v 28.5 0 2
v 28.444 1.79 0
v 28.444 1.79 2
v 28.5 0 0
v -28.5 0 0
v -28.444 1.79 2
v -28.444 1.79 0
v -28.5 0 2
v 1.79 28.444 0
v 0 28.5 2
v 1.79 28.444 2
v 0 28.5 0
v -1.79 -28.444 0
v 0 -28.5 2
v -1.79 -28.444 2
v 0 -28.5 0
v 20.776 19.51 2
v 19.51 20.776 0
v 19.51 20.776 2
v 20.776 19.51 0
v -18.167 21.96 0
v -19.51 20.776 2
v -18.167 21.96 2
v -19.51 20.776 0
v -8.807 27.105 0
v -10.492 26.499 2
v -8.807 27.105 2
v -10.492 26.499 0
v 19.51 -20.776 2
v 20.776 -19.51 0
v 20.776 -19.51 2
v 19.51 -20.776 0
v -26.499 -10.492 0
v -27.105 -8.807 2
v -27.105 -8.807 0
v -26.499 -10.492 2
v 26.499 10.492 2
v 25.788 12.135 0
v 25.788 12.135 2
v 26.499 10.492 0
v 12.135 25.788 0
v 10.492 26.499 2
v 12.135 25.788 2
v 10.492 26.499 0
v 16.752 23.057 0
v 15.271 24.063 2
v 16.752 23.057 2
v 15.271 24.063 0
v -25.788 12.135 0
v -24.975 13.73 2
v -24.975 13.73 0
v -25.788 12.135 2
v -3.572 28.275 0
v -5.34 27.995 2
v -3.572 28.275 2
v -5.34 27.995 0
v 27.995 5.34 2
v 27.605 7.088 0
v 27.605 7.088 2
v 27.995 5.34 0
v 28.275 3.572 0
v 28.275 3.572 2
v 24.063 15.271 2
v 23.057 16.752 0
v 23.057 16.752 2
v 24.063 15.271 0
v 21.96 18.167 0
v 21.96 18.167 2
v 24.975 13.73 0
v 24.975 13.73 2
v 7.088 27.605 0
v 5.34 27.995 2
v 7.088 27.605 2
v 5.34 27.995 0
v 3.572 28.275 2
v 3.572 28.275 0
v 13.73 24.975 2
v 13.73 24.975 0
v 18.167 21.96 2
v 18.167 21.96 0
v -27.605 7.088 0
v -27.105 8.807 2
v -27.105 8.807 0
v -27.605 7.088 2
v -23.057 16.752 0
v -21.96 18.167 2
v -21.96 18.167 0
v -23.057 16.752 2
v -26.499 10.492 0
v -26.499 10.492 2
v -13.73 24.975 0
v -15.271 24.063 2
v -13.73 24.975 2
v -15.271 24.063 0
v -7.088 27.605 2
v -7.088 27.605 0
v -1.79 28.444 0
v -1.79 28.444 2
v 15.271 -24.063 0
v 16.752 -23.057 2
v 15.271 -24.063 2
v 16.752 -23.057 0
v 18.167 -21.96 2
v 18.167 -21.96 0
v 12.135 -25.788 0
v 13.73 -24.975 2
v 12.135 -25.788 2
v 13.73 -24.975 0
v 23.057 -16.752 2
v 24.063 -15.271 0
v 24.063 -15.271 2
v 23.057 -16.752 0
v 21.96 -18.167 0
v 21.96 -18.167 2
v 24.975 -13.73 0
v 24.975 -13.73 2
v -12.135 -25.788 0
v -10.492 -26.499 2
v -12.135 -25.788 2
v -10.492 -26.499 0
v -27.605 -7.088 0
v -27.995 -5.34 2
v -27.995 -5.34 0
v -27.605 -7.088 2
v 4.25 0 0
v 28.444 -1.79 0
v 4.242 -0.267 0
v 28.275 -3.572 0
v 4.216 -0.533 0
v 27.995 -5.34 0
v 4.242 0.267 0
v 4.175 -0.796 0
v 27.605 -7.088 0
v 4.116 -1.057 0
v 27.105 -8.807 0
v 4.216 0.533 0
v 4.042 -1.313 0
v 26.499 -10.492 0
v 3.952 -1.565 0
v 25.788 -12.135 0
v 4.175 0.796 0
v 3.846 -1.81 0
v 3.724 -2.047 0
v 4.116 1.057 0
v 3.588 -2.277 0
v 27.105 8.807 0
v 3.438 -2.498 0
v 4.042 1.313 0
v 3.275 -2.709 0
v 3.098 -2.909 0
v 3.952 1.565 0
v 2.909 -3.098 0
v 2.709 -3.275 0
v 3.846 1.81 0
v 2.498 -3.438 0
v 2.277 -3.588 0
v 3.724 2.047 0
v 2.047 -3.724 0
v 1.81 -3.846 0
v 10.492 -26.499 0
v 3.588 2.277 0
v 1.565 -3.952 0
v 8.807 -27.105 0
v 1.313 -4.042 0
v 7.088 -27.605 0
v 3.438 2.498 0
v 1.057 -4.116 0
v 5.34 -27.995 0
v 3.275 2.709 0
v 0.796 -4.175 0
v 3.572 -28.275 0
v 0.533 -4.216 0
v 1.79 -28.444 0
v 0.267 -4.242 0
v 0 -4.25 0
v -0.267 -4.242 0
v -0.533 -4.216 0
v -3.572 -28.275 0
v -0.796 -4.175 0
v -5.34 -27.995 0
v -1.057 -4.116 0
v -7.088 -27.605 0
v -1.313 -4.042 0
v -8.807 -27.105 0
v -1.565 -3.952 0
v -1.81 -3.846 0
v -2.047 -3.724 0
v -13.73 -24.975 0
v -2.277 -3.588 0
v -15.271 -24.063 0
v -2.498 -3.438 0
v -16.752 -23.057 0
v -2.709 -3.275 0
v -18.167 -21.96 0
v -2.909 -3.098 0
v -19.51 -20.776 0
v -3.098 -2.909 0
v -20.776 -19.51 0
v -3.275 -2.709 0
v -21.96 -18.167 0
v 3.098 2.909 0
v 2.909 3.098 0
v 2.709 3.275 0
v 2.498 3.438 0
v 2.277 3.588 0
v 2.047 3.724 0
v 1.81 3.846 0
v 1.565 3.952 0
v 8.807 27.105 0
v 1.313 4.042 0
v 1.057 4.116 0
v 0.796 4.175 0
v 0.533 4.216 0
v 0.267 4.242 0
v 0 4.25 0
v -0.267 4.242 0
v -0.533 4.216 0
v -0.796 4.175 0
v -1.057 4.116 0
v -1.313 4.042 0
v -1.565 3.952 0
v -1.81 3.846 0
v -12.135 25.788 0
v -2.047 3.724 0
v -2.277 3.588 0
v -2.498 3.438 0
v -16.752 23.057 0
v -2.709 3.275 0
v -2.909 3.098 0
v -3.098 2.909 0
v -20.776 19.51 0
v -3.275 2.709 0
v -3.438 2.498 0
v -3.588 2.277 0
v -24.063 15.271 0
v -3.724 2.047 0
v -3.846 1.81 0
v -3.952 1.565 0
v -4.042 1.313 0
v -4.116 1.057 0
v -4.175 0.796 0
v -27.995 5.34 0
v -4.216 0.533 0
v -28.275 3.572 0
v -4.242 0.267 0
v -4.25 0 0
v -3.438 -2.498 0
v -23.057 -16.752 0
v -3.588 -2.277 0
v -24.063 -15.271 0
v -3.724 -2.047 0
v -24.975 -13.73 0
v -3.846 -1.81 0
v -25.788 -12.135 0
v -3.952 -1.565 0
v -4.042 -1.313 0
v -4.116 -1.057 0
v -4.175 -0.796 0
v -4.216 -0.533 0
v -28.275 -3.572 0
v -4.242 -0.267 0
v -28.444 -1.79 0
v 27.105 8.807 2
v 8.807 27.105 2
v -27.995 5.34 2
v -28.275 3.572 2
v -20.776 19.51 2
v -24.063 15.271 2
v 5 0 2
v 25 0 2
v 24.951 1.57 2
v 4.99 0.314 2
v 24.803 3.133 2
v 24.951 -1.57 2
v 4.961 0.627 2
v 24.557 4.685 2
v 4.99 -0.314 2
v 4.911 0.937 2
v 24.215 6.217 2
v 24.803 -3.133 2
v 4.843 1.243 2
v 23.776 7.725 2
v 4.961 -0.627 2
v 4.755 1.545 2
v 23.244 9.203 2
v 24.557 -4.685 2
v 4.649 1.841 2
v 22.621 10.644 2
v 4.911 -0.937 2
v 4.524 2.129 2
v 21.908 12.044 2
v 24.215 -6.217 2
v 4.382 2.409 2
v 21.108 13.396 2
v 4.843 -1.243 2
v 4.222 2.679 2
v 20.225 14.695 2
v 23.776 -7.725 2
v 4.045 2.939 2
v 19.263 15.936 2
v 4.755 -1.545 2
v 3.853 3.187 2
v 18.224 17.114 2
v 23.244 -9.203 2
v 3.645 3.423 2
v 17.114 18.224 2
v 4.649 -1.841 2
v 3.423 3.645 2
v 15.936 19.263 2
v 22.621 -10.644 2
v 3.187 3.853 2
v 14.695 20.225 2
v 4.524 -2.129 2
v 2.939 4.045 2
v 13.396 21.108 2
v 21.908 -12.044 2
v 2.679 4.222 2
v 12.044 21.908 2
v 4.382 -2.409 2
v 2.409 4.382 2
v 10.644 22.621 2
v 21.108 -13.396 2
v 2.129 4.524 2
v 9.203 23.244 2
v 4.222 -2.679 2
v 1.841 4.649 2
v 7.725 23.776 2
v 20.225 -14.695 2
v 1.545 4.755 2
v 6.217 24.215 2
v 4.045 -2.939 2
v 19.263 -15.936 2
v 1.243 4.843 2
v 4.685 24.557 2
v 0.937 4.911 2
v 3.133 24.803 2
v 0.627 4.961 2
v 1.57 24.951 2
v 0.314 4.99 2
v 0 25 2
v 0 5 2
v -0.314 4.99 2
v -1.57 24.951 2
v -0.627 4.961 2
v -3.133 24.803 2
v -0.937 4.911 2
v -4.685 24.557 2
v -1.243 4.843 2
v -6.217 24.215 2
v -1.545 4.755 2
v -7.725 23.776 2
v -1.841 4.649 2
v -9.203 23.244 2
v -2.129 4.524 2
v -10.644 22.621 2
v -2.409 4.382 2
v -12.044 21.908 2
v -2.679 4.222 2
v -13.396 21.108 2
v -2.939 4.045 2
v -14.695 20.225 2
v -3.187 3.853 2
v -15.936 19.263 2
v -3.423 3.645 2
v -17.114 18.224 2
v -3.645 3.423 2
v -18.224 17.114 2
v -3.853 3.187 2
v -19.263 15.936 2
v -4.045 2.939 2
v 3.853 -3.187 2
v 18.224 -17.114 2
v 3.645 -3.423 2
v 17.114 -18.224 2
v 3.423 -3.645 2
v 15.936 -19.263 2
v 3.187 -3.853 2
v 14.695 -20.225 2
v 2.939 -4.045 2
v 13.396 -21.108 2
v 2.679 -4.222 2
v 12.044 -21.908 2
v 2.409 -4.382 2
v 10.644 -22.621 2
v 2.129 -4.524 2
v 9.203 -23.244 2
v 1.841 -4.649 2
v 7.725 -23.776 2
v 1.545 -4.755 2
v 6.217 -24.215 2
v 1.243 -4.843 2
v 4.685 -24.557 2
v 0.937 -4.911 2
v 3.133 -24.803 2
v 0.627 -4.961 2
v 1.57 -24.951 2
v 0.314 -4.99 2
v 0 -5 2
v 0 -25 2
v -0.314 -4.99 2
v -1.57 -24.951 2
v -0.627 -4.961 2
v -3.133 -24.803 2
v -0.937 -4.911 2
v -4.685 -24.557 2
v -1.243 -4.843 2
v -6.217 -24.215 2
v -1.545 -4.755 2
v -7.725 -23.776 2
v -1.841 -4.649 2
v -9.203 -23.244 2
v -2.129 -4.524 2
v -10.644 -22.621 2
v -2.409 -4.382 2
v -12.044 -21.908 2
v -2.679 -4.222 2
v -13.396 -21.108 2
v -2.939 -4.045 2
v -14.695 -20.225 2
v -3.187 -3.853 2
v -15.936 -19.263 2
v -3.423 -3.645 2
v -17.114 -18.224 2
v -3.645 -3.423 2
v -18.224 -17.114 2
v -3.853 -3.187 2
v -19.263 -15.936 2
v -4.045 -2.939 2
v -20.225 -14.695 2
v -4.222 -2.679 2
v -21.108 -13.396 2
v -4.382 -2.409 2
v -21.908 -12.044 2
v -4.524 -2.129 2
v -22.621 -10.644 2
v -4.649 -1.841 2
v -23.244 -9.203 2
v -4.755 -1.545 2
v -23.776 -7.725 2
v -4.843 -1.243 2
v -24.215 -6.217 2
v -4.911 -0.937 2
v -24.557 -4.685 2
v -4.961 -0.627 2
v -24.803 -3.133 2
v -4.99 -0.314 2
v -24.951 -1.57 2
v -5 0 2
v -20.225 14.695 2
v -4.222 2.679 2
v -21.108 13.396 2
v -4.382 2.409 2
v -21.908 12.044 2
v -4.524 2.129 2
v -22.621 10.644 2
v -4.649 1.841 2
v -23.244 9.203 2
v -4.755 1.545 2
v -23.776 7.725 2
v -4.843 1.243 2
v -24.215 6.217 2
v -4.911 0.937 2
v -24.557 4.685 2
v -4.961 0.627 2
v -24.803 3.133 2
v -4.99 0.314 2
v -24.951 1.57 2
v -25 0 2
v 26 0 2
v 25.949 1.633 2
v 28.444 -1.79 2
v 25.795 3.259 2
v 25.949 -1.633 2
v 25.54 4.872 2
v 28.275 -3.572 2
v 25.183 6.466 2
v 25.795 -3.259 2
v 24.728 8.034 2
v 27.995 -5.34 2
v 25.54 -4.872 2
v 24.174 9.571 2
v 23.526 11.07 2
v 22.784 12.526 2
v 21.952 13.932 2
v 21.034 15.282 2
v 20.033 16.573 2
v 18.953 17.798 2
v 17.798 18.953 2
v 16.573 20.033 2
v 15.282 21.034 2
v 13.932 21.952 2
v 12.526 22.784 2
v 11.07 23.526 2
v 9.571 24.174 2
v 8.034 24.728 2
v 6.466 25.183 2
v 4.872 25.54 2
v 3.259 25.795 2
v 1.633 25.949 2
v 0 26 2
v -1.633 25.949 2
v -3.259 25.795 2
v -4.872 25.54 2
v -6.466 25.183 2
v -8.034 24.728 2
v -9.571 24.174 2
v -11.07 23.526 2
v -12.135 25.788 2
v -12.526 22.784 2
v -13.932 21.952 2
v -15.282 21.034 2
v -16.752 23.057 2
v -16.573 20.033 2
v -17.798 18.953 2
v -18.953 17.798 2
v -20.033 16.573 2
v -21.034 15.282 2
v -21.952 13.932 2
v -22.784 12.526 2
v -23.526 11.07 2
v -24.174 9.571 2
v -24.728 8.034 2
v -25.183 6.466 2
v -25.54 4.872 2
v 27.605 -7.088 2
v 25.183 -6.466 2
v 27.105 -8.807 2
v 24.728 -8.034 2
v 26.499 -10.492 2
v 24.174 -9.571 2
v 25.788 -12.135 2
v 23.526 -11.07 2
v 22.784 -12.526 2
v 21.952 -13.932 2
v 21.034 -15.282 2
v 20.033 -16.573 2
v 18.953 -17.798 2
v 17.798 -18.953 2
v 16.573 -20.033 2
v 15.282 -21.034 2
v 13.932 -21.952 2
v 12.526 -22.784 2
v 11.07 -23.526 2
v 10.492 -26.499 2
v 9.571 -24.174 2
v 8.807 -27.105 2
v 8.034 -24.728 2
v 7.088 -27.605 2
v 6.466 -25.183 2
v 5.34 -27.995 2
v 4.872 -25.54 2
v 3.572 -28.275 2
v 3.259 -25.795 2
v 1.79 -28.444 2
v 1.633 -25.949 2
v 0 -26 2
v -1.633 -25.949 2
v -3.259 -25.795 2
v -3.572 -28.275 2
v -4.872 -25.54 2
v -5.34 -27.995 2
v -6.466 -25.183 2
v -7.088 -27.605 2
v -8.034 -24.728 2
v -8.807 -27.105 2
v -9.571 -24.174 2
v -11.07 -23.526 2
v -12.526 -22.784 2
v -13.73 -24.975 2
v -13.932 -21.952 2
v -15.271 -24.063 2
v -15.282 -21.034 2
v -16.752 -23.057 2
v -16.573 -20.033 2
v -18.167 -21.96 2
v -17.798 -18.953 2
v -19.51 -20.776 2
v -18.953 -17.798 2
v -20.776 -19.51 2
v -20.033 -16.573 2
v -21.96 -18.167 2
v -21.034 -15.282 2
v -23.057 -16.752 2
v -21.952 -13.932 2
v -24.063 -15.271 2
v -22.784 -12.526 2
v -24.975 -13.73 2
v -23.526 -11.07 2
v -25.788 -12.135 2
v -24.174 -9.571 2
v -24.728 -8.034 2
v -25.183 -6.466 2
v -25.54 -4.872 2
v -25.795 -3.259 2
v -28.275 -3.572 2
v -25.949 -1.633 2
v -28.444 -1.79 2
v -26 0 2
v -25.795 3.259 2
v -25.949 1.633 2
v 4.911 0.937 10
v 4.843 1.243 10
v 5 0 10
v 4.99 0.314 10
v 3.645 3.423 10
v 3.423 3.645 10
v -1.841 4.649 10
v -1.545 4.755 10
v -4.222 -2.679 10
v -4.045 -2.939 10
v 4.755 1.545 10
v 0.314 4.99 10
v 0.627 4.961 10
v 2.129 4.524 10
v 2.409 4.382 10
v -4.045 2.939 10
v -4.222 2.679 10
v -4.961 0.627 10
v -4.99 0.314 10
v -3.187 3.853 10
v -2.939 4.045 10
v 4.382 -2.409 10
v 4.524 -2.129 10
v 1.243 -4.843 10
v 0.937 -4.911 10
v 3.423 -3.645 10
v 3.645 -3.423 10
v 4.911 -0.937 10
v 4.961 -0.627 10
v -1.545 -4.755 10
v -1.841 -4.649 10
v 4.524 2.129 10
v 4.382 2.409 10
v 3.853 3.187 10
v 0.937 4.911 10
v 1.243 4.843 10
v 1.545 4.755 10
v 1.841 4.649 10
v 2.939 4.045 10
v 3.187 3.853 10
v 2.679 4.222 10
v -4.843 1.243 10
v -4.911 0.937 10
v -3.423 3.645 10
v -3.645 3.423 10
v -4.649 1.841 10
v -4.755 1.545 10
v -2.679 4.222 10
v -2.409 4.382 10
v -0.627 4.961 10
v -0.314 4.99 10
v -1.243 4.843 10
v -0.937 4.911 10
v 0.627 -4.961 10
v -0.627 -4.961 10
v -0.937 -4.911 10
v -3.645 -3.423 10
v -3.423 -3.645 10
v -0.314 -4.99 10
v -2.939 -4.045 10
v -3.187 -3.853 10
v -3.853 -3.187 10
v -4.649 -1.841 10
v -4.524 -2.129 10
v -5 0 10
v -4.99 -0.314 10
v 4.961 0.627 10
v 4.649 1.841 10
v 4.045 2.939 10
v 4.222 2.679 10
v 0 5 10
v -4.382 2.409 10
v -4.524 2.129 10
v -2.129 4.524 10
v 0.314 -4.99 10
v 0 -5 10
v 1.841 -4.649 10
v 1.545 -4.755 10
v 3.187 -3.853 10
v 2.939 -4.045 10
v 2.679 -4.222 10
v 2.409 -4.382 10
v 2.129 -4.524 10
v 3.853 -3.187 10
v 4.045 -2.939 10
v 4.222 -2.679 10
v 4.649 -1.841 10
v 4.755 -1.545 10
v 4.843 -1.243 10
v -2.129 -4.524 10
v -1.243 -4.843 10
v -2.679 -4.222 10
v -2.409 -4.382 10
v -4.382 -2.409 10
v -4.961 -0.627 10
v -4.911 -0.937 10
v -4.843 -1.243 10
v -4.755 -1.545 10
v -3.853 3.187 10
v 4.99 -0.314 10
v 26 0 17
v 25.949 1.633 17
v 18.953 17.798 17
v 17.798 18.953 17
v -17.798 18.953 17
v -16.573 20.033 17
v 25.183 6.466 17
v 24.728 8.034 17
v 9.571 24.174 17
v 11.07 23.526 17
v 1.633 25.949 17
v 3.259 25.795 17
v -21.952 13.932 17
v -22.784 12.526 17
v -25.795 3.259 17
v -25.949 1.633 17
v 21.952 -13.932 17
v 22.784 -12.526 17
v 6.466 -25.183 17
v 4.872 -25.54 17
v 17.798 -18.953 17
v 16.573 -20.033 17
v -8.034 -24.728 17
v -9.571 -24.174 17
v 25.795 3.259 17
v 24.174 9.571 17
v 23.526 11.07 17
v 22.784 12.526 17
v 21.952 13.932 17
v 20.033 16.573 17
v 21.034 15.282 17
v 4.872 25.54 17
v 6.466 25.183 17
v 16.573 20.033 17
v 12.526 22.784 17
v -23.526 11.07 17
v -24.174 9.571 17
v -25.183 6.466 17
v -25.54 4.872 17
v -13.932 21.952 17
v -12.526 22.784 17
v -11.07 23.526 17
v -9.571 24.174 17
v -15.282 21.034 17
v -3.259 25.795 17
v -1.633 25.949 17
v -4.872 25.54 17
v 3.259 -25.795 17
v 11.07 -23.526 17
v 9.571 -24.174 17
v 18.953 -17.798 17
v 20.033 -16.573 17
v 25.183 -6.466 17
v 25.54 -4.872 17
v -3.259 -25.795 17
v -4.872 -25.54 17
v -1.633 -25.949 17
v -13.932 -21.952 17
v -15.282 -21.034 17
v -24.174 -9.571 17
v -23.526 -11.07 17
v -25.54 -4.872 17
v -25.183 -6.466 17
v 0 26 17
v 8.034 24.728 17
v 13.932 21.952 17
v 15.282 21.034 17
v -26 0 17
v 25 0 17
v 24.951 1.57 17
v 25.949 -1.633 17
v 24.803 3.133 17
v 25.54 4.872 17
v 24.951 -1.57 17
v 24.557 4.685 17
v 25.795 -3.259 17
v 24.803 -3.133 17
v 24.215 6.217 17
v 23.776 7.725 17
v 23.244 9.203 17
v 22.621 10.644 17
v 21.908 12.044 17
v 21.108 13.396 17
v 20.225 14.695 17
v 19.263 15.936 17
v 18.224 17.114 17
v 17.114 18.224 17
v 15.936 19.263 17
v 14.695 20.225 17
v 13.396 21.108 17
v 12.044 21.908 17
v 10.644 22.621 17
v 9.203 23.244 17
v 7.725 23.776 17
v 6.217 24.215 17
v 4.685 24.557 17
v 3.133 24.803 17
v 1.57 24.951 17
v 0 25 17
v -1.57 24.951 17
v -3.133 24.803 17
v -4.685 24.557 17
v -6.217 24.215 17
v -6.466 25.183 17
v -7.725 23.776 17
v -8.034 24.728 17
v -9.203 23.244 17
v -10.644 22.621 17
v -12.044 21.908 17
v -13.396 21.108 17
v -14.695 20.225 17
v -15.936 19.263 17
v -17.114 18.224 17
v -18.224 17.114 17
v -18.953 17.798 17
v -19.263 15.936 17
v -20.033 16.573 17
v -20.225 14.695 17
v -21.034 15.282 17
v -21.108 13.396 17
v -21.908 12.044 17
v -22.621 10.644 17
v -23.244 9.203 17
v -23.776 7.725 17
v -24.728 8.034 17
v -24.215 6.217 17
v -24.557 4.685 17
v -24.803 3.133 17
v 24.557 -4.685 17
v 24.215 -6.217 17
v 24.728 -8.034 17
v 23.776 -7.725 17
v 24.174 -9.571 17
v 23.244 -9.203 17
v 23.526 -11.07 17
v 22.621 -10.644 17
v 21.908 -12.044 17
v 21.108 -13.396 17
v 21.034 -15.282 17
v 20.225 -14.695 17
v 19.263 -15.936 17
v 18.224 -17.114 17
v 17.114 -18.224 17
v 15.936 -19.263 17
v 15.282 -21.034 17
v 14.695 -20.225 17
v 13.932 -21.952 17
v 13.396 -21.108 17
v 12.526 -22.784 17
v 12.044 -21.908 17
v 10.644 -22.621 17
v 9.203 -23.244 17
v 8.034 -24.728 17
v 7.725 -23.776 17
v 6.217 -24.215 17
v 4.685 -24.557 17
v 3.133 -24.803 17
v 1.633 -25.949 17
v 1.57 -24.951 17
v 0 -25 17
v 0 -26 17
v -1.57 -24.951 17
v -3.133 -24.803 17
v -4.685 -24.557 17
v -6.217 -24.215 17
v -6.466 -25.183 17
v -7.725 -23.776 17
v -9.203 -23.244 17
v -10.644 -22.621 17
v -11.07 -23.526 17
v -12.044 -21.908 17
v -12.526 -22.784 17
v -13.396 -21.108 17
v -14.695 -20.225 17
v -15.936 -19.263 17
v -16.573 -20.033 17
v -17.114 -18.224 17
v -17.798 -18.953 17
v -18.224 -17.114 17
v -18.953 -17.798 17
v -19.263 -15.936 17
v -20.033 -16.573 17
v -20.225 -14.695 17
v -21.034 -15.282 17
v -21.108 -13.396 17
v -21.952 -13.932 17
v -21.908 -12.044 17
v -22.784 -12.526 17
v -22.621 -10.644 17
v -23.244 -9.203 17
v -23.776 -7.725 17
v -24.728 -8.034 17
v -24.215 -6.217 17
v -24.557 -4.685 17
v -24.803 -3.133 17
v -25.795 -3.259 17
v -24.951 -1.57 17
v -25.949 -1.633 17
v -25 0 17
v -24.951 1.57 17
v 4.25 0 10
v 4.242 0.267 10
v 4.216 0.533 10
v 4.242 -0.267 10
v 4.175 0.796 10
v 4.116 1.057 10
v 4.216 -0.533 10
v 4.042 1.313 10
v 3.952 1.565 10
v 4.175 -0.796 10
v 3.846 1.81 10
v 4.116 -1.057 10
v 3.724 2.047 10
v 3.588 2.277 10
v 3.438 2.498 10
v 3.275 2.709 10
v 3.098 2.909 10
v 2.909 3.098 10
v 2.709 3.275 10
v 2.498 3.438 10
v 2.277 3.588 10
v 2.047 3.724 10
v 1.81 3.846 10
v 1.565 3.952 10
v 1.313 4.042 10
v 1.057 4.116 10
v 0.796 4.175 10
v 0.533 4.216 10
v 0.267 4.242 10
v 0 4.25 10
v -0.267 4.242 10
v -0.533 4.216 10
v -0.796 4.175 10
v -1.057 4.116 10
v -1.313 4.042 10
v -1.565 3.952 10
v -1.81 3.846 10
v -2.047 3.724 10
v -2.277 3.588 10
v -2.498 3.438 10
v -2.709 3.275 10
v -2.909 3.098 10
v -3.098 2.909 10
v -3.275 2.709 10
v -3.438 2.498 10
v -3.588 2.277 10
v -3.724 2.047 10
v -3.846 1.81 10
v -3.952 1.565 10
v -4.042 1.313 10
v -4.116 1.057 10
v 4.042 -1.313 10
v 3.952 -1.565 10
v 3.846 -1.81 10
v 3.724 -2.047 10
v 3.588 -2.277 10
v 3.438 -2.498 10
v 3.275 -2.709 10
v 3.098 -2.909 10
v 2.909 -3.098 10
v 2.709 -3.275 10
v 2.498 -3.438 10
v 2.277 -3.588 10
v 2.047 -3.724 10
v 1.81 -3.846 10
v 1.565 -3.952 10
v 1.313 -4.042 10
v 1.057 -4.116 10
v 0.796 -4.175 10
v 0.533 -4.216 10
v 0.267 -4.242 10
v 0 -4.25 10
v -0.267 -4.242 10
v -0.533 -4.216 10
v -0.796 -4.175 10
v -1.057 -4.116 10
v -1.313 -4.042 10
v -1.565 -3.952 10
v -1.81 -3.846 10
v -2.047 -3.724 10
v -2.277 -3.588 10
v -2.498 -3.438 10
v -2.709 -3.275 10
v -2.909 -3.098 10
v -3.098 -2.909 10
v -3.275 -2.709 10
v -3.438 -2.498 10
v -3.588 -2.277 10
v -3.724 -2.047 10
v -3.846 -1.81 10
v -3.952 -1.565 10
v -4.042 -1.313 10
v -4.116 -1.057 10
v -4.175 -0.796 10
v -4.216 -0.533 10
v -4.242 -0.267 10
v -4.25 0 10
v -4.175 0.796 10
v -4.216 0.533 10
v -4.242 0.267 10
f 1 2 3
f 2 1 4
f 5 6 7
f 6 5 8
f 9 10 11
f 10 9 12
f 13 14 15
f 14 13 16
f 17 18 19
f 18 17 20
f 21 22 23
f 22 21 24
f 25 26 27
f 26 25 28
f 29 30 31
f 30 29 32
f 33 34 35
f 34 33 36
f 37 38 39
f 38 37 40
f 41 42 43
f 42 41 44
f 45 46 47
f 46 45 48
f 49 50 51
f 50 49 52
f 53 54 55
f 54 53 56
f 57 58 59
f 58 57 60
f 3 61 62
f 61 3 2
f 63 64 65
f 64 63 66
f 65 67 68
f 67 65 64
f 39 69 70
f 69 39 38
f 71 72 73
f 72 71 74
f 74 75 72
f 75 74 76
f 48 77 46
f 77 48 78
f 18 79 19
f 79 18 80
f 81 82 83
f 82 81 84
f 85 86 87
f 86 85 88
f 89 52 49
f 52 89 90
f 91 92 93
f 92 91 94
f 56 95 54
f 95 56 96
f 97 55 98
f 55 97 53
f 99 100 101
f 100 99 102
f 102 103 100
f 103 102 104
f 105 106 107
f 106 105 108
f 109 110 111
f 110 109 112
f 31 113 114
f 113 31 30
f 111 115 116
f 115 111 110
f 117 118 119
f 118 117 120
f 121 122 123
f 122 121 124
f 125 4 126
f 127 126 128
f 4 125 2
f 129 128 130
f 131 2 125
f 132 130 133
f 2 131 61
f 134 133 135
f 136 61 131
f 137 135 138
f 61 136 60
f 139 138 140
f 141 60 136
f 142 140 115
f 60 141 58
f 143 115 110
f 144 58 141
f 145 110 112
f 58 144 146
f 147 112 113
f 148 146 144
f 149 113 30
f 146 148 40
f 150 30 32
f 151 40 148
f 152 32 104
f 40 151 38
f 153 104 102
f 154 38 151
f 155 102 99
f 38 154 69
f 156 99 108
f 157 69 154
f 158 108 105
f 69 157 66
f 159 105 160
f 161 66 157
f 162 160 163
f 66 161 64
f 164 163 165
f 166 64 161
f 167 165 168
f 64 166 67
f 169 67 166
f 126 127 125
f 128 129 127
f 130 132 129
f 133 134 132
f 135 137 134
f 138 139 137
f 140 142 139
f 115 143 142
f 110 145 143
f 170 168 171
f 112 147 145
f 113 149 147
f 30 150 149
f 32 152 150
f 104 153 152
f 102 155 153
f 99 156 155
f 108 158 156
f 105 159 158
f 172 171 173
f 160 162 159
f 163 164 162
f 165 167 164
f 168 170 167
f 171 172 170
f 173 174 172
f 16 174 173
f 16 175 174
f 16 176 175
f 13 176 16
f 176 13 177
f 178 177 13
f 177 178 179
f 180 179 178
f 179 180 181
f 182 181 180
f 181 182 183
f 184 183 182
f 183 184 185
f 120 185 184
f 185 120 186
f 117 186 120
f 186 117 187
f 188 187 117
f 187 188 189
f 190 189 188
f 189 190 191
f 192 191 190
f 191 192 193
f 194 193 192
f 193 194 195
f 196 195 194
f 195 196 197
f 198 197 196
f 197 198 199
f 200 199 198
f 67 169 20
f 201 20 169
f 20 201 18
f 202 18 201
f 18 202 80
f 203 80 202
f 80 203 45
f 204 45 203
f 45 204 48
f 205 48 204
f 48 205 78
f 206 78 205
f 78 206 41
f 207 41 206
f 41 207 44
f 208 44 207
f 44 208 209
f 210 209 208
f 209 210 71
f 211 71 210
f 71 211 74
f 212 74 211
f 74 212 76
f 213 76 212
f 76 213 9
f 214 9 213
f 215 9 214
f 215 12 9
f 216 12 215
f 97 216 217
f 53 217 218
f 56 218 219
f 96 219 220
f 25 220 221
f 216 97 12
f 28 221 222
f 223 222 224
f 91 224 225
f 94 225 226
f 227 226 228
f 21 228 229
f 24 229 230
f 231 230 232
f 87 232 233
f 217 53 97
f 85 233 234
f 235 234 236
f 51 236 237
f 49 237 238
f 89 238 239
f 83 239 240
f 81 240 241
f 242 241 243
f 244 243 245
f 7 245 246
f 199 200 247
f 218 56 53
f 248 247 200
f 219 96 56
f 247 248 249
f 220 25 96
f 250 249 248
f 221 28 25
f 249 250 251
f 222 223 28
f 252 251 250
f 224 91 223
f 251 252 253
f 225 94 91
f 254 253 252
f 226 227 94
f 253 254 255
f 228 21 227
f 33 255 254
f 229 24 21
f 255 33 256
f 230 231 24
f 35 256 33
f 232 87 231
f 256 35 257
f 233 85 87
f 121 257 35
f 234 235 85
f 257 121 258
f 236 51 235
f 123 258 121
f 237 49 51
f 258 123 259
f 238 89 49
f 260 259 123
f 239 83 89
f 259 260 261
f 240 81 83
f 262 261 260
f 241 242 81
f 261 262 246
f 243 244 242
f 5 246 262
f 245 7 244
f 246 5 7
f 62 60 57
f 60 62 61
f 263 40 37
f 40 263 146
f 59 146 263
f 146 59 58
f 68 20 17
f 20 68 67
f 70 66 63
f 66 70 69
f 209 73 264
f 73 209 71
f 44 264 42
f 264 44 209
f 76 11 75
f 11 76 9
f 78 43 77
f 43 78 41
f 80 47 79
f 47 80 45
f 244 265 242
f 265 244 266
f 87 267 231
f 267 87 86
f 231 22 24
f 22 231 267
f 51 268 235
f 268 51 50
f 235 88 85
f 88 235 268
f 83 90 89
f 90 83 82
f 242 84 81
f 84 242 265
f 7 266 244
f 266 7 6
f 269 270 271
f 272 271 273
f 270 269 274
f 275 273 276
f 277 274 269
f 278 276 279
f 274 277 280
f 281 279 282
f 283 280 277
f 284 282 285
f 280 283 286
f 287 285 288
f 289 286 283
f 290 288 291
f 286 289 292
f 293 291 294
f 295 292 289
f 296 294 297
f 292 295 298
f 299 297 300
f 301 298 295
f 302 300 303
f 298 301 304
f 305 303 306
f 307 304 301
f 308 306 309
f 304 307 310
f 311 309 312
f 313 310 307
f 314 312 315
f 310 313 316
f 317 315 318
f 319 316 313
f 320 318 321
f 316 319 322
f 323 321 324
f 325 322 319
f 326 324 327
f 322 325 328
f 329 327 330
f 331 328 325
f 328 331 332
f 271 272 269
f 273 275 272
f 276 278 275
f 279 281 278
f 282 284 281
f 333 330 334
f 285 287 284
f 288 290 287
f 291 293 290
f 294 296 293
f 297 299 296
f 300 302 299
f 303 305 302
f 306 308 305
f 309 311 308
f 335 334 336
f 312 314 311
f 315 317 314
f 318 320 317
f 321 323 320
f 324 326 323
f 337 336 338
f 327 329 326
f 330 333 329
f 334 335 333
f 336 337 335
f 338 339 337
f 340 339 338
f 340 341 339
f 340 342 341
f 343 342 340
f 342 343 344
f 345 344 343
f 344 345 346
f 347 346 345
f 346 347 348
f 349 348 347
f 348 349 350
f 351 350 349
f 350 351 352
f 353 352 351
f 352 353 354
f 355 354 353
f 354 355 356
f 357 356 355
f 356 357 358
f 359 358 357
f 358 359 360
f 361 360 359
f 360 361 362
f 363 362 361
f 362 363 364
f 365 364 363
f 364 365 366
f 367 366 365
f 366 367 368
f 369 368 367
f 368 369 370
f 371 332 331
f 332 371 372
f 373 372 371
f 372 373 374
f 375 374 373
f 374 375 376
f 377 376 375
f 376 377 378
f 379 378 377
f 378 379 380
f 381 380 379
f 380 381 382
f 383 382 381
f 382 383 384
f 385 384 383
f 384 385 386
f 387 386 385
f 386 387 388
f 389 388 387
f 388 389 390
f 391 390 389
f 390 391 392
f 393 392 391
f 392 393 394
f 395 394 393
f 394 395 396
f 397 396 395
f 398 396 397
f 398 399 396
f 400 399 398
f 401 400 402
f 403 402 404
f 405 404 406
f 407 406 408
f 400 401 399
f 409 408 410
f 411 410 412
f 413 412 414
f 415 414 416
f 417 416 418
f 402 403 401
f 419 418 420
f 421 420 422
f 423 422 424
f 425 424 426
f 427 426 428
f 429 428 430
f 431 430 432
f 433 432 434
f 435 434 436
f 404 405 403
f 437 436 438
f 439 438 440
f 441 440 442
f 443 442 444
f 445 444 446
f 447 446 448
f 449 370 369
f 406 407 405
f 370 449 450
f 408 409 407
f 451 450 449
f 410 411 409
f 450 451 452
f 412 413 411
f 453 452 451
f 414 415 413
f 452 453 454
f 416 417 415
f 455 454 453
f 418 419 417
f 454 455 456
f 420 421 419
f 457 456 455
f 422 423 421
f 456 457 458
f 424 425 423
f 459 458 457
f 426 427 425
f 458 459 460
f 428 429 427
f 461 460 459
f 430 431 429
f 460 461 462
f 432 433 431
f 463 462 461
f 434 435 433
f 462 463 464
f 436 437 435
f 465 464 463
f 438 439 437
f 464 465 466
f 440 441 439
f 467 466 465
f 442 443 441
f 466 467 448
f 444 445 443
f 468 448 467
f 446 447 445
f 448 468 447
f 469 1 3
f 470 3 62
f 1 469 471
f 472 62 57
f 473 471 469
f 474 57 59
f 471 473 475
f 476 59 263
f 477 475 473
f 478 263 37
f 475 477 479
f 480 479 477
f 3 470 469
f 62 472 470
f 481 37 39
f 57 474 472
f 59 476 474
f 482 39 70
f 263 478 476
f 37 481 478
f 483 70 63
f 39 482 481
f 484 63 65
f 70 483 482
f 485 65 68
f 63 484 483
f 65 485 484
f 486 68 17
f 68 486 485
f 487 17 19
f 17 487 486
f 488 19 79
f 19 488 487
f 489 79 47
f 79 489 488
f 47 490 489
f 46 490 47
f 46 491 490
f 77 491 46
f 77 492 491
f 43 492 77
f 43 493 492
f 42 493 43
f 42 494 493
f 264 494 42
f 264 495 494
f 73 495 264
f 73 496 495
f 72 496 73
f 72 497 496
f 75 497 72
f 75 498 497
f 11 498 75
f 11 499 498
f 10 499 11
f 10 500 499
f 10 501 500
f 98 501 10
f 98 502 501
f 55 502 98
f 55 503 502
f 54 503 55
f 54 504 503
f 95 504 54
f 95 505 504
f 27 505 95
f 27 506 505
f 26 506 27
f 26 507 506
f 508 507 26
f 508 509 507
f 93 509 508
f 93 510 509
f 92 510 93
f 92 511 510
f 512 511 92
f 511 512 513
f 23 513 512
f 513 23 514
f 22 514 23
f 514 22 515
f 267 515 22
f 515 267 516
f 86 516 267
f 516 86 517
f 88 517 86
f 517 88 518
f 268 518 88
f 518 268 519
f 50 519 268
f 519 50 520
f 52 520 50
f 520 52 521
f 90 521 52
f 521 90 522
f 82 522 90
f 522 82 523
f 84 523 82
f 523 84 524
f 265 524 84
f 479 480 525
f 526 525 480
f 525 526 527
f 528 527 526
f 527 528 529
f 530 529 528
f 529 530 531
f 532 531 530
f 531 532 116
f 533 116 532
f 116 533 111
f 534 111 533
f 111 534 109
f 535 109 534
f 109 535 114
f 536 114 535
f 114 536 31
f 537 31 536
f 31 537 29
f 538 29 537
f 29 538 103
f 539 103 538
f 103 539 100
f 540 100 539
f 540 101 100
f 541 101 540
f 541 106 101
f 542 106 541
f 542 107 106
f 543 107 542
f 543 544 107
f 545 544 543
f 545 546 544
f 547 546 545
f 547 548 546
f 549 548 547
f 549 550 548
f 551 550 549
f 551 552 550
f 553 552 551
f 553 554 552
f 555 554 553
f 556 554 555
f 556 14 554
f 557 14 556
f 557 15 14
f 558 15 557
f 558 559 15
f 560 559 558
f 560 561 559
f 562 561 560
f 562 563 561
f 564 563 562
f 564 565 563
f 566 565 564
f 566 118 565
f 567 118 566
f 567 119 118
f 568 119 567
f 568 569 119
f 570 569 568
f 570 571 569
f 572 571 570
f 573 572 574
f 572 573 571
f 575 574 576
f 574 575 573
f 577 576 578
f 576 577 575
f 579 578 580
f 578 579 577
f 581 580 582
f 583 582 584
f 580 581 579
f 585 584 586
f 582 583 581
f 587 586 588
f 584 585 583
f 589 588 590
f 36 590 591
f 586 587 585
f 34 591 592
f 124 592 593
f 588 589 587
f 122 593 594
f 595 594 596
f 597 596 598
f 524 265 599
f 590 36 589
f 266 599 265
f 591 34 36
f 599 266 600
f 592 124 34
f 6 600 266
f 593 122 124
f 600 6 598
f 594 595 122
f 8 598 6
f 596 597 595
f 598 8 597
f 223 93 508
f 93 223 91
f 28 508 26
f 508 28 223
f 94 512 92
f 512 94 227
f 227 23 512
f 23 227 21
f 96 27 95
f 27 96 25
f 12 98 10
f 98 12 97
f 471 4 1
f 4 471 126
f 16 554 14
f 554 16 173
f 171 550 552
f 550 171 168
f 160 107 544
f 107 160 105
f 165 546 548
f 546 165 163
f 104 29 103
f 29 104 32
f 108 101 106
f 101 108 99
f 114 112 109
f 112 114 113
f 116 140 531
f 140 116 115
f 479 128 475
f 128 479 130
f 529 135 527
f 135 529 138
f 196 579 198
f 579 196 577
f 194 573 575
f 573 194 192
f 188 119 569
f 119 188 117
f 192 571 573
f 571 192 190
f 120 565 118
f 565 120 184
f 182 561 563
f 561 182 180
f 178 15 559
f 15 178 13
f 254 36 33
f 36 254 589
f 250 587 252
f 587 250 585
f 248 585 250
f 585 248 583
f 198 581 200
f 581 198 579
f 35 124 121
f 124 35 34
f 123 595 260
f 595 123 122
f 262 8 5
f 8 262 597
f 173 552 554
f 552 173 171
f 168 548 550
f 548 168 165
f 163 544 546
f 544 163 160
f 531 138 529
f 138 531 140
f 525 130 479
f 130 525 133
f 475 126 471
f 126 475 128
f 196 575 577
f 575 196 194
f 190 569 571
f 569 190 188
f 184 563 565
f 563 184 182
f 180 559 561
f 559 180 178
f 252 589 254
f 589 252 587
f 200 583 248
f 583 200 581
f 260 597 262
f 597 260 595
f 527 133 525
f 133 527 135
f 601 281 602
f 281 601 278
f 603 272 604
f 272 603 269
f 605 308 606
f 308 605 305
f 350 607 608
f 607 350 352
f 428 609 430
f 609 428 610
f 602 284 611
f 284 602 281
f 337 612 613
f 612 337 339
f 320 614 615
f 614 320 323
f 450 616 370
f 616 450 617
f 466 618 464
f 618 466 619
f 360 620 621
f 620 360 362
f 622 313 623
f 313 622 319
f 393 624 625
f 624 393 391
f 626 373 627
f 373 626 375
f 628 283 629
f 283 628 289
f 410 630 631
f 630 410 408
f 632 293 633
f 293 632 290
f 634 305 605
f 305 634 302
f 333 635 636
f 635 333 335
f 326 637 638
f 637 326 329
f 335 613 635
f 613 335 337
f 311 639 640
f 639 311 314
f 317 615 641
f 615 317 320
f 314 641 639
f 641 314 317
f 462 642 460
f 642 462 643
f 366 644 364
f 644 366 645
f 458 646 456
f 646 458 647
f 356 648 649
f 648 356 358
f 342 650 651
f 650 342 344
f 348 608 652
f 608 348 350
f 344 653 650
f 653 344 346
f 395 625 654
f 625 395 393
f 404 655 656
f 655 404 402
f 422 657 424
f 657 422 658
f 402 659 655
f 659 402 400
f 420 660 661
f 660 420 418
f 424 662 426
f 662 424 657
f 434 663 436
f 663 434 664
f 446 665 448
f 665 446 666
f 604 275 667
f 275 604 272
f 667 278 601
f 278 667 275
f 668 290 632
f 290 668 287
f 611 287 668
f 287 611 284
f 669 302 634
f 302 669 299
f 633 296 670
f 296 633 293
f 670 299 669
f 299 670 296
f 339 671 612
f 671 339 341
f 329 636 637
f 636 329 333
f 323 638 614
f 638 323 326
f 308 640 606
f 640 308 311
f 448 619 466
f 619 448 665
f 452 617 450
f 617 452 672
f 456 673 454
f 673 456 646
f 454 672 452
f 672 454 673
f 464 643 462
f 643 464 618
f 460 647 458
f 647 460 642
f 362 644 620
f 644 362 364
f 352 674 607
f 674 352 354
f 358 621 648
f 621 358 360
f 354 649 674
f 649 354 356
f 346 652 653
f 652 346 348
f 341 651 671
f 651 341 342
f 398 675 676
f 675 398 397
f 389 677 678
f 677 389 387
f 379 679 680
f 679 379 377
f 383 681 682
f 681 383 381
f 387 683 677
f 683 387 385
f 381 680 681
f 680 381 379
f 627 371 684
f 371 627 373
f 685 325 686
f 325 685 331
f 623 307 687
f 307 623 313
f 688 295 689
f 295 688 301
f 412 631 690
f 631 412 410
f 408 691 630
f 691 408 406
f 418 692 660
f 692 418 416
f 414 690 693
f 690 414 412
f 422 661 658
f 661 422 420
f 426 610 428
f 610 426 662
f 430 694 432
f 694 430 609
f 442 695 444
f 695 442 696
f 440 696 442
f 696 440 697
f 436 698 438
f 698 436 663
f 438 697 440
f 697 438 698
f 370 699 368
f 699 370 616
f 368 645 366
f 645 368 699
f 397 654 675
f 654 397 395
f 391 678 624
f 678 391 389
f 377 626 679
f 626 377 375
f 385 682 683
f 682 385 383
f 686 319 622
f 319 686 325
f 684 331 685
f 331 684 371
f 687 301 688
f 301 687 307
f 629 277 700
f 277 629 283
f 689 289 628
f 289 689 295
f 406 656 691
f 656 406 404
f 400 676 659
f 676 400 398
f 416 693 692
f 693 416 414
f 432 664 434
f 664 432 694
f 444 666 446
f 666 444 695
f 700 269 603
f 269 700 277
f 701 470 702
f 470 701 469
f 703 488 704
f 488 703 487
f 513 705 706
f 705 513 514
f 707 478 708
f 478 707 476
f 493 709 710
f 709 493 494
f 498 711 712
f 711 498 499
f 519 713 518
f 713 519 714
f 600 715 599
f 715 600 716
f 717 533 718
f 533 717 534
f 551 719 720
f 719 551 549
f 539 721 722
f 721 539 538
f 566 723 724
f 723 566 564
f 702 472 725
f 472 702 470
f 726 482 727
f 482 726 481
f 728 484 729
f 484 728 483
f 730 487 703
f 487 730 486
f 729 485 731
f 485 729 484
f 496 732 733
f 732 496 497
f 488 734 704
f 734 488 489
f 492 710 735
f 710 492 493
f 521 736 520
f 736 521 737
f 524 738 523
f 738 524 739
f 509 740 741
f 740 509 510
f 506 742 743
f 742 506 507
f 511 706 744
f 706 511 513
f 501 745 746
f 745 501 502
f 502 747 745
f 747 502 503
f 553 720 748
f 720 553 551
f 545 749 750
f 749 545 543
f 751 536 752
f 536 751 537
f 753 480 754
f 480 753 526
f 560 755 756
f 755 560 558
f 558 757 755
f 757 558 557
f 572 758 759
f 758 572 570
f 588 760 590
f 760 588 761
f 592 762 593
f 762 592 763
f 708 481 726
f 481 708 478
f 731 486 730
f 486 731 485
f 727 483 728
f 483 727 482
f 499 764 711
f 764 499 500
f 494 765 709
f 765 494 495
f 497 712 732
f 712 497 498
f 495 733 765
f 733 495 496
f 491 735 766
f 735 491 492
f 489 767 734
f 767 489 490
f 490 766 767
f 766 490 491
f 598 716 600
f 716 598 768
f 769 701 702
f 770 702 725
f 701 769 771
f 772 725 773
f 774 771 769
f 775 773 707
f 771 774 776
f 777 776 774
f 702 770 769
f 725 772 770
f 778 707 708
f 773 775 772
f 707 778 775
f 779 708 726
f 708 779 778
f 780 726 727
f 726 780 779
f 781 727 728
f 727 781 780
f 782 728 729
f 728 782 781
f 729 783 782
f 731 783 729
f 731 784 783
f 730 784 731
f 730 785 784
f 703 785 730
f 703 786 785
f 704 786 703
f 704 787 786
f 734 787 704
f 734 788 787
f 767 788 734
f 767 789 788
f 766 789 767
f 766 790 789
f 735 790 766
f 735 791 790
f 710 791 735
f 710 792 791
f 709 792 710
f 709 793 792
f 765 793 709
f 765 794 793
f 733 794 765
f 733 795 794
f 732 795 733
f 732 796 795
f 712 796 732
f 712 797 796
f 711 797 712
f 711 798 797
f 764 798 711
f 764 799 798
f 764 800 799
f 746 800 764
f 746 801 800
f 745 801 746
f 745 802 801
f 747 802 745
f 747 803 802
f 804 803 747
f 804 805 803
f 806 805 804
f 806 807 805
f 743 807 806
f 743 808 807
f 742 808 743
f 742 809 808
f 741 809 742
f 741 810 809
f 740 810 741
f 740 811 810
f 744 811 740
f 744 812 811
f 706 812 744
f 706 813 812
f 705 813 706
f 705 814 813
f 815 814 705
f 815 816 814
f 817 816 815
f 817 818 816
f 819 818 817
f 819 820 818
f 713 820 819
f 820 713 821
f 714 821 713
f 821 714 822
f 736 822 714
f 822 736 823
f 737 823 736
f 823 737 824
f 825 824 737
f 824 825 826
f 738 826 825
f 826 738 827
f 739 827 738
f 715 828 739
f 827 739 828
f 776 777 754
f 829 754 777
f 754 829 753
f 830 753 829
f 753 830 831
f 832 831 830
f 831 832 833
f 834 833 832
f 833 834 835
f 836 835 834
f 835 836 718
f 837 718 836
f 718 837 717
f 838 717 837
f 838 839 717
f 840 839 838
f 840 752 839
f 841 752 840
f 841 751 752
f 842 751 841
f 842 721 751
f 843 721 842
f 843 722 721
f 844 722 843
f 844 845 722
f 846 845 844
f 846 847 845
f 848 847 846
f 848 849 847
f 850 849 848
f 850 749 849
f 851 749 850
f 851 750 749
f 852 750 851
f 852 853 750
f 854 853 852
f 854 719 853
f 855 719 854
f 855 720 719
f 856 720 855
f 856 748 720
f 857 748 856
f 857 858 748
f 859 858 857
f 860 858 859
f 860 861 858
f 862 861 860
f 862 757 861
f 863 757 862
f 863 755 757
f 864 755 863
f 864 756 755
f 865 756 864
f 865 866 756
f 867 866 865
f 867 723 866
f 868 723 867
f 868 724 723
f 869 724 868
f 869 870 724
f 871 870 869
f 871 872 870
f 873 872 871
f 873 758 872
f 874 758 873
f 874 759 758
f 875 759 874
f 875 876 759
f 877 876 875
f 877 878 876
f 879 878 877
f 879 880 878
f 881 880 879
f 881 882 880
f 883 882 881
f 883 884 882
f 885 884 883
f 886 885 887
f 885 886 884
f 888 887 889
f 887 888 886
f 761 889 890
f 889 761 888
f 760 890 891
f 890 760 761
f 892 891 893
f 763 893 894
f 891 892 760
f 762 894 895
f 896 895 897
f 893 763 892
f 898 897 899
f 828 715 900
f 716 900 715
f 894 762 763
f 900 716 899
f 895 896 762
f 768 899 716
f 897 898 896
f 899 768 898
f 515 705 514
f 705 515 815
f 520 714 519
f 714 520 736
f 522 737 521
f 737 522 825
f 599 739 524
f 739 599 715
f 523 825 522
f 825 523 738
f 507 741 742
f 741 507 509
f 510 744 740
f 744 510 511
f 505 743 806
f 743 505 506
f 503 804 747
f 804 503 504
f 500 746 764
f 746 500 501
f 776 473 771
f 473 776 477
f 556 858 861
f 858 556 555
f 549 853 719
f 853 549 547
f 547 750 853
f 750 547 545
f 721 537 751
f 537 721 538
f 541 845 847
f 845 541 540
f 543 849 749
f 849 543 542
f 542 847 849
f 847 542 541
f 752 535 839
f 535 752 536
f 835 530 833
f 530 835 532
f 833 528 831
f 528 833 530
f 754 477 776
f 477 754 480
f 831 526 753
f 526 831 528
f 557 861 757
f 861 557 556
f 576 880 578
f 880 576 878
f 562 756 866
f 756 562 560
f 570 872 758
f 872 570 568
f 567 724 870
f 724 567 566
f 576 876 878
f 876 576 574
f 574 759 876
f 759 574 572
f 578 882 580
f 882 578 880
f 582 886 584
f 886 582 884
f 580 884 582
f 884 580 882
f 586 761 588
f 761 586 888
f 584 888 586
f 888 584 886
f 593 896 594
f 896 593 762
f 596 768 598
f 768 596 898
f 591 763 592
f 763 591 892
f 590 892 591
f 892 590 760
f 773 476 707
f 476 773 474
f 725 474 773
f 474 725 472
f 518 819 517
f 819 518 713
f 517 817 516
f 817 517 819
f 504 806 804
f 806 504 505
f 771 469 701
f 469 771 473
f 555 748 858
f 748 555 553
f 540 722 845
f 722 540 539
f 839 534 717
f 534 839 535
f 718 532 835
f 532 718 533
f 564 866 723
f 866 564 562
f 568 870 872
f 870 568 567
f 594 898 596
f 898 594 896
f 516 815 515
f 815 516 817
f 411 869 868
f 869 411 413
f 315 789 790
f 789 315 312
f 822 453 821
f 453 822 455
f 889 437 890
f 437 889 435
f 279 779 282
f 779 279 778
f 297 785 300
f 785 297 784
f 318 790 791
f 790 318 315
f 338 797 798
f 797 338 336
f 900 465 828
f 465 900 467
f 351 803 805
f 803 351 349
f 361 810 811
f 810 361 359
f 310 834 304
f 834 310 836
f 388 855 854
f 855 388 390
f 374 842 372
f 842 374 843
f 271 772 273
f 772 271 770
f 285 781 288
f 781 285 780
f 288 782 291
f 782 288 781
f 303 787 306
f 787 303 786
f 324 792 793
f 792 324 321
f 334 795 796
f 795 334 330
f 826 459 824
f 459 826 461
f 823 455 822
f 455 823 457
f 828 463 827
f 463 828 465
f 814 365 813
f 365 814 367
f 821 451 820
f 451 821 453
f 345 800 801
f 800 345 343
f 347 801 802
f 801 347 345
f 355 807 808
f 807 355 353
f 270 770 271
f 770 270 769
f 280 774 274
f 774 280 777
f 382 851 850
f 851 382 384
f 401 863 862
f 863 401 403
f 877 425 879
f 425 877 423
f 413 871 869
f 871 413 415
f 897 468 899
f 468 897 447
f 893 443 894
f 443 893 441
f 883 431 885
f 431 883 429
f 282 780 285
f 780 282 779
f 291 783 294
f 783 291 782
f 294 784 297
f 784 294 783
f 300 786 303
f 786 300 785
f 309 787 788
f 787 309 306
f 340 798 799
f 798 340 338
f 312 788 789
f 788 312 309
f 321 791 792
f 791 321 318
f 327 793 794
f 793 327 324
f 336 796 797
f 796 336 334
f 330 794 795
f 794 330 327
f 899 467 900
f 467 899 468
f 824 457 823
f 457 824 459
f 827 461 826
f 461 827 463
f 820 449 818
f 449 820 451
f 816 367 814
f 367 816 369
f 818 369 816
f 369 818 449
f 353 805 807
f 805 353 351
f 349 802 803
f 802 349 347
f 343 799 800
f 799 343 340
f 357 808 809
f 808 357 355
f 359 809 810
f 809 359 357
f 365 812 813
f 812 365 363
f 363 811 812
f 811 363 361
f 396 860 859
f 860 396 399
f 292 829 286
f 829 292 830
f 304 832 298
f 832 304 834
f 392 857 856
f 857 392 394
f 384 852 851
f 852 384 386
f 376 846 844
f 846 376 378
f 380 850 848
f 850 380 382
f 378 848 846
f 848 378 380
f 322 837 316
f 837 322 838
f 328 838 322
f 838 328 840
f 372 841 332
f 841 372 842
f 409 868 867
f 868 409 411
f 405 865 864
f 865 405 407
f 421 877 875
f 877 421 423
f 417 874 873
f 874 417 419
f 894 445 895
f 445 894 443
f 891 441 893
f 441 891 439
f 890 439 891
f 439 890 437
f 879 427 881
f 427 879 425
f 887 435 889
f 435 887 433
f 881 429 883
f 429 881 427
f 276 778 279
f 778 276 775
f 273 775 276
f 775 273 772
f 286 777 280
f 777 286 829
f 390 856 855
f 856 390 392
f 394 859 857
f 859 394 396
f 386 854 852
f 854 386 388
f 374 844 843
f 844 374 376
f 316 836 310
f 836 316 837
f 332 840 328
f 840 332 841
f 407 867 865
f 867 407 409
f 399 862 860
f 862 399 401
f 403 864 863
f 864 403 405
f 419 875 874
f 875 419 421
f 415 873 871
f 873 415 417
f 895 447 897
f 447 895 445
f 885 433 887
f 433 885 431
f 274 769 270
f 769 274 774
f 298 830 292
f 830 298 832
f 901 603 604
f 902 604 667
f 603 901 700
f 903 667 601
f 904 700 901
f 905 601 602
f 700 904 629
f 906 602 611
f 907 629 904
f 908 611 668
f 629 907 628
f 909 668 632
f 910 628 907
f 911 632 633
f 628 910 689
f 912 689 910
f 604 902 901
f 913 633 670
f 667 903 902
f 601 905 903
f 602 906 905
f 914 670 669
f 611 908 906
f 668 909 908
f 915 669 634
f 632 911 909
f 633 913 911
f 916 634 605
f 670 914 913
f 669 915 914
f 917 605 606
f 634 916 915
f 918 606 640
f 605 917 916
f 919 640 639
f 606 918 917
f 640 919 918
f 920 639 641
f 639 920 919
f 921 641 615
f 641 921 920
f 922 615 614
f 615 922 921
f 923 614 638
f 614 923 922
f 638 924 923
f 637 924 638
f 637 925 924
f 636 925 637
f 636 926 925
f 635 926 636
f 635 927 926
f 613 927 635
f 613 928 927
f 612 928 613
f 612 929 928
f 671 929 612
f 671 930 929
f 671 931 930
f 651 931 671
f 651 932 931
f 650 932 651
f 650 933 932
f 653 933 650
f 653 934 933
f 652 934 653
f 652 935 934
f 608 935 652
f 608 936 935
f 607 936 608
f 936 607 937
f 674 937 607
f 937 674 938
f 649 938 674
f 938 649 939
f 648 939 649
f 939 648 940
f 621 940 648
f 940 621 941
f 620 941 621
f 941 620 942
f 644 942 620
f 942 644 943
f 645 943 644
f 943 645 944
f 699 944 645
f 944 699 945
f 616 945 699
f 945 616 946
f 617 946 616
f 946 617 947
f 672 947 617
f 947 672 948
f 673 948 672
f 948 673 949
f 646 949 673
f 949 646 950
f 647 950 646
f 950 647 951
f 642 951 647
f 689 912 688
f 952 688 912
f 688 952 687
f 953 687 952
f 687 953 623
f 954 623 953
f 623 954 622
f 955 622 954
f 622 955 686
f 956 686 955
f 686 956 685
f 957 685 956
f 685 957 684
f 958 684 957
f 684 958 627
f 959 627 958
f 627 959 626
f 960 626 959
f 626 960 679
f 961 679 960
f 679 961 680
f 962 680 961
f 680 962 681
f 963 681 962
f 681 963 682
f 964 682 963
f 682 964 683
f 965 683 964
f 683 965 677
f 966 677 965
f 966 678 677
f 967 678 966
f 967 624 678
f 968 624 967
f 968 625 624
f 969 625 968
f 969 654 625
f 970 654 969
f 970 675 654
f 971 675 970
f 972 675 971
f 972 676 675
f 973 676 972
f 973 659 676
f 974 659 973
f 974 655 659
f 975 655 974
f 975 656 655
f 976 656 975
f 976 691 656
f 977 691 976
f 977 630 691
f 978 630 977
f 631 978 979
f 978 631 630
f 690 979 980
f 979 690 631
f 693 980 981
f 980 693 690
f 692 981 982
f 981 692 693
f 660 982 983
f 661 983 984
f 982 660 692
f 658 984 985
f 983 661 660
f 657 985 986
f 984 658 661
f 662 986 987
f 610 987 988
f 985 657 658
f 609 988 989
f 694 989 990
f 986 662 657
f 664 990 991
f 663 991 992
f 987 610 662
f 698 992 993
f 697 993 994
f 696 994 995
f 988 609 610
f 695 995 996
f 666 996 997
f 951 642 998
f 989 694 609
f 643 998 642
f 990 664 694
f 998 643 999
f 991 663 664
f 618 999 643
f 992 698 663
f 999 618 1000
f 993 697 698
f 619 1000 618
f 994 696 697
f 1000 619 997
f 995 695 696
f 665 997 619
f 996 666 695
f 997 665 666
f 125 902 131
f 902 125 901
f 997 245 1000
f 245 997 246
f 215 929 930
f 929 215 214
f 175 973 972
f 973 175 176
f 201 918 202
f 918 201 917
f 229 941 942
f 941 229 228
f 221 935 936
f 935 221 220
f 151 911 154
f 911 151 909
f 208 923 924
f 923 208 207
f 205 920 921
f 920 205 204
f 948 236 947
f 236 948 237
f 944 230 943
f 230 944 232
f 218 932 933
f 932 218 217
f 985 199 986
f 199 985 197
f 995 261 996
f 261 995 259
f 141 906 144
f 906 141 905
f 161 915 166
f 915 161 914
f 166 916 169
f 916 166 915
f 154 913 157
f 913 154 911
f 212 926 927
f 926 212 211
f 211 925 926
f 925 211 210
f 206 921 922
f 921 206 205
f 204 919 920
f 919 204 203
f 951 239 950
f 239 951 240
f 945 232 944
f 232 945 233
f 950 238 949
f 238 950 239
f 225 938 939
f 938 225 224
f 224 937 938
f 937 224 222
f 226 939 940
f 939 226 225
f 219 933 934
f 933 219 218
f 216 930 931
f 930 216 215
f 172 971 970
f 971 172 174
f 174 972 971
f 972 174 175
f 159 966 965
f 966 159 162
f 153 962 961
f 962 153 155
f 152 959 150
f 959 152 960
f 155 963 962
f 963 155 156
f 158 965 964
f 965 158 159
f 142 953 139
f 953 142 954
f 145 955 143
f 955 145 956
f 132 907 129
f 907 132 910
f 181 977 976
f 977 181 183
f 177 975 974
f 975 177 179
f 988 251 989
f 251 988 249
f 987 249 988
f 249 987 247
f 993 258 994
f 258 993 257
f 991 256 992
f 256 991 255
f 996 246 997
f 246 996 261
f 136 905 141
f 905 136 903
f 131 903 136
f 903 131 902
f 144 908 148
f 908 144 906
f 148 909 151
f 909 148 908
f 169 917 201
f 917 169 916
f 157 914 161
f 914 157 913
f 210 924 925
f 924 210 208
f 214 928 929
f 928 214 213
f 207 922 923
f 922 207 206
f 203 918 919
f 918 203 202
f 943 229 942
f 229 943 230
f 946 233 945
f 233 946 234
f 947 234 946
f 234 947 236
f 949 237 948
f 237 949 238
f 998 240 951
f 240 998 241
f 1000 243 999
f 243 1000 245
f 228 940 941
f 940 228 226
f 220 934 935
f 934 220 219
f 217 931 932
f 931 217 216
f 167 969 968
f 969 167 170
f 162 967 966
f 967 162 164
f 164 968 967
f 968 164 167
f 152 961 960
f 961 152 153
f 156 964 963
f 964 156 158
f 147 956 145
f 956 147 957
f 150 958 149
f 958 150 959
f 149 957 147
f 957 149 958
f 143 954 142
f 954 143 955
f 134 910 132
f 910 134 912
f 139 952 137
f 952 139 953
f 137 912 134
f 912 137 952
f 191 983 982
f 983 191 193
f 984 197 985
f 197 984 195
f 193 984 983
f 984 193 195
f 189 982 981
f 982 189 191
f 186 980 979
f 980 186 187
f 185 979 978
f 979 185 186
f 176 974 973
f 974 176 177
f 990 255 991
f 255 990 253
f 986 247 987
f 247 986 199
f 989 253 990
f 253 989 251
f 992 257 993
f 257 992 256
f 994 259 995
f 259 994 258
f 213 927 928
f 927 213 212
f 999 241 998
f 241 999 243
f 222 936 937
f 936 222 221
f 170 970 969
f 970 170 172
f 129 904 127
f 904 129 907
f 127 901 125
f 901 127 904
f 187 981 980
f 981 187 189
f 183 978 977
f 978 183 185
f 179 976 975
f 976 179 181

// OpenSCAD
//--------------------------------------------------------------
// Name: SpoolHub
// Version: 1.5
// Purpose: Держатель-заглушка для катушки филамента
// Author: Evgeny Klepikov
// E-mail: klek07@ya.ru
//
// Created: 07.12.2017
// Updated: 07.12.2017
// Copyright: (c) 2017 WildFox24
// Licence: GPL v3
//--------------------------------------------------------------
//
$fn=100;
h1=2;
h2=15;
D1=52;
D2=10;
difference() {
    cylinder(d=D1+5, h=h1);
    cylinder(d=D2, h=h2);
}
difference() {
    translate([0,0,h1]) cylinder(d=D1, h=h2);
    translate([0,0,h1]) cylinder(d=D1-2.0, h=h2);
}
difference() {
    cylinder(d=D2, h=10);
    cylinder(d=D2-1.5, h=10);
}
